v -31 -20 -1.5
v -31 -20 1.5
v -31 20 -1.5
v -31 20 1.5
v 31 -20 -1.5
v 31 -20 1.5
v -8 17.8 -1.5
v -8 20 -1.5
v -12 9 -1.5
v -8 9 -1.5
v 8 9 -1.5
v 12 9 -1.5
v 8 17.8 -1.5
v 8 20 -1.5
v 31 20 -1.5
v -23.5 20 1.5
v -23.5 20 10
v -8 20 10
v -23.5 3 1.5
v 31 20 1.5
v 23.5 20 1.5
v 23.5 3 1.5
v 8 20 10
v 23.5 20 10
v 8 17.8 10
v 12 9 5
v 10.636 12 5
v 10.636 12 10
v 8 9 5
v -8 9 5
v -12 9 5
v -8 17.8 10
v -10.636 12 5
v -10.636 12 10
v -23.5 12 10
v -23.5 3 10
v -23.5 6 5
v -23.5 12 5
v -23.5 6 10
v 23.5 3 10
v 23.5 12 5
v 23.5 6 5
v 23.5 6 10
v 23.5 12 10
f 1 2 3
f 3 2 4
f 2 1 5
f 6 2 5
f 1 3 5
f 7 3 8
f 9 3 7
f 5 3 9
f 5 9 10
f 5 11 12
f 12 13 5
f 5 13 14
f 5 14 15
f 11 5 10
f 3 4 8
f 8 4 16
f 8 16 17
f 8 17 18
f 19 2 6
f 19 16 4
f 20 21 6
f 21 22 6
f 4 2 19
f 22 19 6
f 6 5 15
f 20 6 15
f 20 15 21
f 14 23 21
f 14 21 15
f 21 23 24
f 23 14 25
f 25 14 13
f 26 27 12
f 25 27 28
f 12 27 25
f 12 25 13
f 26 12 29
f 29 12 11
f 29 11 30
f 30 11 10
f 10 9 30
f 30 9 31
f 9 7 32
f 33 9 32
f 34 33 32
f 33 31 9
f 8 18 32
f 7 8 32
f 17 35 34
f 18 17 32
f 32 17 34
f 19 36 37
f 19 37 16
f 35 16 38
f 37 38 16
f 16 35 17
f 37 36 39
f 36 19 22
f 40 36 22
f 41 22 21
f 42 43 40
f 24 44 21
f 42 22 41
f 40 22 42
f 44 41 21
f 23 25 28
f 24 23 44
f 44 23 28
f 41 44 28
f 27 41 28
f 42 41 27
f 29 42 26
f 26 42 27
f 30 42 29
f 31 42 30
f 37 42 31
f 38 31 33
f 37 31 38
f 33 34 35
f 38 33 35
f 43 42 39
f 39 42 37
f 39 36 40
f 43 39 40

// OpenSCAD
/*polyhedron(
  		points=[ [0,0,0],[0,0,10],[0,60,10],[0,60,0], [5,0,10],[5,60,10] ],                                 
  		faces=[ [0,3,2,1],[1,2,5,4],[4,5,3,0],[1,4,0],[2,3,5] ] 
    	);
*/
difference() {
	union() {
		cube(size=[62,40,3], center=true);
		translate([-23.5,3,0]) {
			difference () {
				cube(size=[47,17,10]);
				translate([-1,3,5]) cube(size=[50,6,10]);
			}
		}
	}
	translate([7,20,-10]) rotate([90,0,0]) polyhedron(
  		points=[ [0,0,0],[0,0,11],[0,60,11],[0,60,0], [5,0,11],[5,60,11] ],                                 
  		faces=[ [0,3,2,1],[1,2,5,4],[4,5,3,0],[1,4,0],[2,3,5] ] 
    	);
	rotate([0,180,0]) translate([7,20,-20]) rotate([90,0,0]) polyhedron(
  		points=[ [0,0,0],[0,0,11],[0,60,11],[0,60,0], [5,0,11],[5,60,11] ],                                 
  		faces=[ [0,3,2,1],[1,2,5,4],[4,5,3,0],[1,4,0],[2,3,5] ] 
    	);
	translate([-8, 9, -10]) cube(size=[16, 30, 60]);
}
	//18.5
	//24
